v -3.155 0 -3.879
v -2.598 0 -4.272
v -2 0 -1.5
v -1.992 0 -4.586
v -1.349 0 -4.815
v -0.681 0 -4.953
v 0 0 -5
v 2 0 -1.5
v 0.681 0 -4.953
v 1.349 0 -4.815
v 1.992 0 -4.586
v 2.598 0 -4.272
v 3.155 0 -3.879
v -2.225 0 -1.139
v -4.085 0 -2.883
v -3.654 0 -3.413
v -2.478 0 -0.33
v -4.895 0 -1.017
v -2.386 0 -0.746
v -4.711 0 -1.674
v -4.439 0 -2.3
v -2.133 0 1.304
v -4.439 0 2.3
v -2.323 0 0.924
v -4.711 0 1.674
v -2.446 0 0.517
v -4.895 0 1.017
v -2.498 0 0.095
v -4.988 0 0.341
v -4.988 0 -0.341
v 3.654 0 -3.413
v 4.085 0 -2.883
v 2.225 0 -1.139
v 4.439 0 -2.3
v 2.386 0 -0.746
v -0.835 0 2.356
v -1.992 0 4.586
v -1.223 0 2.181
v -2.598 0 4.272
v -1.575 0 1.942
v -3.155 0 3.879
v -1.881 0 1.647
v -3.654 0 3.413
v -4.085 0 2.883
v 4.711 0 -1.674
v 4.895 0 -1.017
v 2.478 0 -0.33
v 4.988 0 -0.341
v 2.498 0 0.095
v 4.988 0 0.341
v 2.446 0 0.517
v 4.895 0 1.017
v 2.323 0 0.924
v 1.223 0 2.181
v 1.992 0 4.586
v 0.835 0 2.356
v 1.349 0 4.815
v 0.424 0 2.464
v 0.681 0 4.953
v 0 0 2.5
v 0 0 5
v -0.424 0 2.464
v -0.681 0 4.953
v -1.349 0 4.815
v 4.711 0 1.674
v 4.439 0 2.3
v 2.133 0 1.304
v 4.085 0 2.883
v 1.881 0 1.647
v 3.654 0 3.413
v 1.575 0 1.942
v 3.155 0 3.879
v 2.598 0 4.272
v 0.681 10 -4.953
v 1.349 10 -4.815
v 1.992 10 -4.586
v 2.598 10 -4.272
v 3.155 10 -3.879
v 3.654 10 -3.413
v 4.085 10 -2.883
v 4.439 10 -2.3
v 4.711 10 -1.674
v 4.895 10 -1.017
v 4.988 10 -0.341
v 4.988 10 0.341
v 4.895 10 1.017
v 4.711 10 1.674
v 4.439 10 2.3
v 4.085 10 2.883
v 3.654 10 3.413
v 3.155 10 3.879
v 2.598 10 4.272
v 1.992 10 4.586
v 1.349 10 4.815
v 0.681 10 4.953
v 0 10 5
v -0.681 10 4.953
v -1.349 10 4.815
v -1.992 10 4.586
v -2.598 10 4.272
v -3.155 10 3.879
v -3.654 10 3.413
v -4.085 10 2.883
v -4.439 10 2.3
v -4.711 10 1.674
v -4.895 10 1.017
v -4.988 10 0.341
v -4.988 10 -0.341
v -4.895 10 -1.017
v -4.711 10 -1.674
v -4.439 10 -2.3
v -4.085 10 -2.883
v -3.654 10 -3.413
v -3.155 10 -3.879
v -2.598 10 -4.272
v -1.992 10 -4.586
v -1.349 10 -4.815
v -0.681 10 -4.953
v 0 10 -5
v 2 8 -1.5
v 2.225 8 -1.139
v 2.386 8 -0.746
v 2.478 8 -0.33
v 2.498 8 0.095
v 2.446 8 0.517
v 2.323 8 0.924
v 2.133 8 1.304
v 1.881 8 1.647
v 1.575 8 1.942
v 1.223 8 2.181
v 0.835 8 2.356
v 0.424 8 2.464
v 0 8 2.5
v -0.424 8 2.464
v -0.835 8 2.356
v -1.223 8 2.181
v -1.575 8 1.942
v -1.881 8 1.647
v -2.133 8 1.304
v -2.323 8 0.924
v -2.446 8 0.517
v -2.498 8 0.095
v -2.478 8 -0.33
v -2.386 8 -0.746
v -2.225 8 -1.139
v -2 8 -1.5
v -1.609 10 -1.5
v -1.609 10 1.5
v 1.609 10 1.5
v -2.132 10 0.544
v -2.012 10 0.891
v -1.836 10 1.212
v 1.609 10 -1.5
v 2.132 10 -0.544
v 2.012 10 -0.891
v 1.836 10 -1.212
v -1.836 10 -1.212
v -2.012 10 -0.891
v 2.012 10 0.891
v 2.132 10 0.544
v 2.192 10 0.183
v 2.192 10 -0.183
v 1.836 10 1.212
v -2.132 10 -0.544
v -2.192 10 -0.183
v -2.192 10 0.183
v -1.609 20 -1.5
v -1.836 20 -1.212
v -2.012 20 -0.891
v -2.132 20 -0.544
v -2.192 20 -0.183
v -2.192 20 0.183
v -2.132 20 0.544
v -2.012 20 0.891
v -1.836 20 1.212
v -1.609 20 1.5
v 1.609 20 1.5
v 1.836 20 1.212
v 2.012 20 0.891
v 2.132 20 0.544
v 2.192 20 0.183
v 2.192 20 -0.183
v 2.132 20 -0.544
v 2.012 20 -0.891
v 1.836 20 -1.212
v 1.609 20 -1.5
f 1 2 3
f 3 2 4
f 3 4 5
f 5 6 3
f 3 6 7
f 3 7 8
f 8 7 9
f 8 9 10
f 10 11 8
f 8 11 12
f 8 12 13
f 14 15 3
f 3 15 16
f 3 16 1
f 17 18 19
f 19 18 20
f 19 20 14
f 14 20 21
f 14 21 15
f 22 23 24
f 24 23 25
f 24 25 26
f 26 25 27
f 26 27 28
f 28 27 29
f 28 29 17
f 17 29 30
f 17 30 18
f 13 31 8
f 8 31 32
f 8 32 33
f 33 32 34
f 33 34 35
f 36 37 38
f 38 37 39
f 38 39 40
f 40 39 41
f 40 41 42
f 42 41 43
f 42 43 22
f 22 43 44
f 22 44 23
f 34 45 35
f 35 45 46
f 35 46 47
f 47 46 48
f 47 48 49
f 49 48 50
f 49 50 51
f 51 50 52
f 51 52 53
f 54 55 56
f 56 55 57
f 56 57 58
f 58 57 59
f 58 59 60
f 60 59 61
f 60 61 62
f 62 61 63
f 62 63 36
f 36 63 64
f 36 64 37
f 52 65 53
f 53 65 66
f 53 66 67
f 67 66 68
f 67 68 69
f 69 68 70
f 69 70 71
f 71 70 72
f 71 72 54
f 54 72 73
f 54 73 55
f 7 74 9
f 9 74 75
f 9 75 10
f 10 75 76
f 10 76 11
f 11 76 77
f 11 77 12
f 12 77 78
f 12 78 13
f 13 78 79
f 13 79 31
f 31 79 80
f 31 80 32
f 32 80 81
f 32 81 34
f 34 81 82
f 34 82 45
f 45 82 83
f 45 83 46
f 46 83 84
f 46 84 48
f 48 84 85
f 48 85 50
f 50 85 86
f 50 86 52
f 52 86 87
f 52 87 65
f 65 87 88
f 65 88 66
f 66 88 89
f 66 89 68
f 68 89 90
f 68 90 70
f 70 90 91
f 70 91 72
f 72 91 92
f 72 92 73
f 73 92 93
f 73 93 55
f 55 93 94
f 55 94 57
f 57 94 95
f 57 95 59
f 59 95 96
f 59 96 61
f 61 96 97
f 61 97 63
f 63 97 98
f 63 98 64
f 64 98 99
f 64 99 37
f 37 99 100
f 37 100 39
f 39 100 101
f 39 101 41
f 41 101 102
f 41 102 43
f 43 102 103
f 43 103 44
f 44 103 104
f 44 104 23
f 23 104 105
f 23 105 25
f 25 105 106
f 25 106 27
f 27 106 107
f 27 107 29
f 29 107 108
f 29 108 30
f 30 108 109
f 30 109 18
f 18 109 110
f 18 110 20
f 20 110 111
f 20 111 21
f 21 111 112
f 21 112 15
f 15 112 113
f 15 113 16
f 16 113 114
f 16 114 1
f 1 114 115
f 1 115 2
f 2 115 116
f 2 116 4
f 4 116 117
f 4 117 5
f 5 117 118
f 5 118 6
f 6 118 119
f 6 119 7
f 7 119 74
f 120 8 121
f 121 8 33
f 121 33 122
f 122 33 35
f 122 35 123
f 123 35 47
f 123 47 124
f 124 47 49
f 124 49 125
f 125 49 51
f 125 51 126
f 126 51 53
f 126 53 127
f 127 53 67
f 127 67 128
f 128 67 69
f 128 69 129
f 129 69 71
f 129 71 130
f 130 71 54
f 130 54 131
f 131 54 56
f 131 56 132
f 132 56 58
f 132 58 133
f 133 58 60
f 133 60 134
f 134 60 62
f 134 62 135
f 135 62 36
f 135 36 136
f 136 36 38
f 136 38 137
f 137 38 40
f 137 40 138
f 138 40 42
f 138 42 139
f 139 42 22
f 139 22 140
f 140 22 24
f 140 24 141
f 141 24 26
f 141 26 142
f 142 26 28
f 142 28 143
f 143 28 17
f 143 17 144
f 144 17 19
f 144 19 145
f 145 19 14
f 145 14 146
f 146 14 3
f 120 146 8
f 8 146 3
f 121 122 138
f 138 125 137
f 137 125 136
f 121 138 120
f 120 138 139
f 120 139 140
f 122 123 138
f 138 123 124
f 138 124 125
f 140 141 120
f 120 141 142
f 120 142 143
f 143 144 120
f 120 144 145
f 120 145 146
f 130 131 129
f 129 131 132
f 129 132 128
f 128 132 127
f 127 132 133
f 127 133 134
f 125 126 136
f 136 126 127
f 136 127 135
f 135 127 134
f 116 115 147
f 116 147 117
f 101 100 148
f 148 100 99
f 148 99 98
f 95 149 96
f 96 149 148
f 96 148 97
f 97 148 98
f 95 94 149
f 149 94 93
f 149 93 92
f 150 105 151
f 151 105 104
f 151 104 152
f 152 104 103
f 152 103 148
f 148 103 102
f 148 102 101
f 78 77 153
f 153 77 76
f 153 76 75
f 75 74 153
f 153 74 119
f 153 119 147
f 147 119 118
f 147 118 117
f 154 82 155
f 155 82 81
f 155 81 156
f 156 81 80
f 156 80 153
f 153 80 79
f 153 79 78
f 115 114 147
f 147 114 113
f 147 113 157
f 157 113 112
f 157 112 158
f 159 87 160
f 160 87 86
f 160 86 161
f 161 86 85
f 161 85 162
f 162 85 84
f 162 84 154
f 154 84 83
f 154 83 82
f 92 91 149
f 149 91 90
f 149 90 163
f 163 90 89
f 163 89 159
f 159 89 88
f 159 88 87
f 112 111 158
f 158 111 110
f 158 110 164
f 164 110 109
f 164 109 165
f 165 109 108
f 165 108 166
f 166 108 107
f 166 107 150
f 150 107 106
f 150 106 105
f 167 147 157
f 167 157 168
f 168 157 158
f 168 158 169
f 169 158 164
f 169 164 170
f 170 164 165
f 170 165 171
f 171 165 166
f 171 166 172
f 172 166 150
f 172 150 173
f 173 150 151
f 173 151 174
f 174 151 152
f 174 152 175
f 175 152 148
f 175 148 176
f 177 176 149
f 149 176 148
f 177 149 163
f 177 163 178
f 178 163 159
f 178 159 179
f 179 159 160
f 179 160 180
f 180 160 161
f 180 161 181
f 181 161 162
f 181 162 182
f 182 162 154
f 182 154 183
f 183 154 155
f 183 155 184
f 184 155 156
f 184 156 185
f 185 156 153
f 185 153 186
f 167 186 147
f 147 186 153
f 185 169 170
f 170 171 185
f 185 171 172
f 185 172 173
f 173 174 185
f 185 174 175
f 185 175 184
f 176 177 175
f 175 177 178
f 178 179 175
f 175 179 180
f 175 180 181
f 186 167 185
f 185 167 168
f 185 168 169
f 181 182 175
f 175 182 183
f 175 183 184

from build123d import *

# Parameters (mm, degrees)
SKETCH1_R           = 5
BOSS_EXTRUDE1_DEPTH = 8
SKETCH2_R           = 5
BOSS_EXTRUDE2_DEPTH = 2
BOSS_EXTRUDE3_DEPTH = 10


with BuildPart() as part:
    # Sketch1 → Boss-Extrude1 (new body)
    with BuildSketch(Plane(origin=(0, 0, 0), x_dir=(1, 0, 0), z_dir=(0, 1, 0))):
        Circle(SKETCH1_R)
        with BuildLine():
            Line((-2, 1.5), (2, 1.5))
            ThreePointArc((2, 1.5), (0, -2.5), (-2, 1.5))
        make_face(mode=Mode.SUBTRACT)
    extrude(amount=BOSS_EXTRUDE1_DEPTH)

    # Sketch2 → Boss-Extrude2 (add)
    with BuildSketch(Plane(origin=(0, 8, 0), x_dir=(1, 0, 0), z_dir=(0, 1, 0))):
        Circle(SKETCH2_R)
    extrude(amount=BOSS_EXTRUDE2_DEPTH)

    # Sketch3 → Boss-Extrude3 (add)
    with BuildSketch(Plane(origin=(0, 10, 0), x_dir=(1, 0, 0), z_dir=(0, 1, 0))):
        with BuildLine():
            Line((-1.609347694, 1.5), (1.609347694, 1.5))
            ThreePointArc((1.609347694, 1.5), (2.2, 0), (1.609347694, -1.5))
            Line((1.609347694, -1.5), (-1.609347694, -1.5))
            ThreePointArc((-1.609347694, -1.5), (-2.2, 0), (-1.609347694, 1.5))
        make_face()
    extrude(amount=BOSS_EXTRUDE3_DEPTH)


solid = part.part
